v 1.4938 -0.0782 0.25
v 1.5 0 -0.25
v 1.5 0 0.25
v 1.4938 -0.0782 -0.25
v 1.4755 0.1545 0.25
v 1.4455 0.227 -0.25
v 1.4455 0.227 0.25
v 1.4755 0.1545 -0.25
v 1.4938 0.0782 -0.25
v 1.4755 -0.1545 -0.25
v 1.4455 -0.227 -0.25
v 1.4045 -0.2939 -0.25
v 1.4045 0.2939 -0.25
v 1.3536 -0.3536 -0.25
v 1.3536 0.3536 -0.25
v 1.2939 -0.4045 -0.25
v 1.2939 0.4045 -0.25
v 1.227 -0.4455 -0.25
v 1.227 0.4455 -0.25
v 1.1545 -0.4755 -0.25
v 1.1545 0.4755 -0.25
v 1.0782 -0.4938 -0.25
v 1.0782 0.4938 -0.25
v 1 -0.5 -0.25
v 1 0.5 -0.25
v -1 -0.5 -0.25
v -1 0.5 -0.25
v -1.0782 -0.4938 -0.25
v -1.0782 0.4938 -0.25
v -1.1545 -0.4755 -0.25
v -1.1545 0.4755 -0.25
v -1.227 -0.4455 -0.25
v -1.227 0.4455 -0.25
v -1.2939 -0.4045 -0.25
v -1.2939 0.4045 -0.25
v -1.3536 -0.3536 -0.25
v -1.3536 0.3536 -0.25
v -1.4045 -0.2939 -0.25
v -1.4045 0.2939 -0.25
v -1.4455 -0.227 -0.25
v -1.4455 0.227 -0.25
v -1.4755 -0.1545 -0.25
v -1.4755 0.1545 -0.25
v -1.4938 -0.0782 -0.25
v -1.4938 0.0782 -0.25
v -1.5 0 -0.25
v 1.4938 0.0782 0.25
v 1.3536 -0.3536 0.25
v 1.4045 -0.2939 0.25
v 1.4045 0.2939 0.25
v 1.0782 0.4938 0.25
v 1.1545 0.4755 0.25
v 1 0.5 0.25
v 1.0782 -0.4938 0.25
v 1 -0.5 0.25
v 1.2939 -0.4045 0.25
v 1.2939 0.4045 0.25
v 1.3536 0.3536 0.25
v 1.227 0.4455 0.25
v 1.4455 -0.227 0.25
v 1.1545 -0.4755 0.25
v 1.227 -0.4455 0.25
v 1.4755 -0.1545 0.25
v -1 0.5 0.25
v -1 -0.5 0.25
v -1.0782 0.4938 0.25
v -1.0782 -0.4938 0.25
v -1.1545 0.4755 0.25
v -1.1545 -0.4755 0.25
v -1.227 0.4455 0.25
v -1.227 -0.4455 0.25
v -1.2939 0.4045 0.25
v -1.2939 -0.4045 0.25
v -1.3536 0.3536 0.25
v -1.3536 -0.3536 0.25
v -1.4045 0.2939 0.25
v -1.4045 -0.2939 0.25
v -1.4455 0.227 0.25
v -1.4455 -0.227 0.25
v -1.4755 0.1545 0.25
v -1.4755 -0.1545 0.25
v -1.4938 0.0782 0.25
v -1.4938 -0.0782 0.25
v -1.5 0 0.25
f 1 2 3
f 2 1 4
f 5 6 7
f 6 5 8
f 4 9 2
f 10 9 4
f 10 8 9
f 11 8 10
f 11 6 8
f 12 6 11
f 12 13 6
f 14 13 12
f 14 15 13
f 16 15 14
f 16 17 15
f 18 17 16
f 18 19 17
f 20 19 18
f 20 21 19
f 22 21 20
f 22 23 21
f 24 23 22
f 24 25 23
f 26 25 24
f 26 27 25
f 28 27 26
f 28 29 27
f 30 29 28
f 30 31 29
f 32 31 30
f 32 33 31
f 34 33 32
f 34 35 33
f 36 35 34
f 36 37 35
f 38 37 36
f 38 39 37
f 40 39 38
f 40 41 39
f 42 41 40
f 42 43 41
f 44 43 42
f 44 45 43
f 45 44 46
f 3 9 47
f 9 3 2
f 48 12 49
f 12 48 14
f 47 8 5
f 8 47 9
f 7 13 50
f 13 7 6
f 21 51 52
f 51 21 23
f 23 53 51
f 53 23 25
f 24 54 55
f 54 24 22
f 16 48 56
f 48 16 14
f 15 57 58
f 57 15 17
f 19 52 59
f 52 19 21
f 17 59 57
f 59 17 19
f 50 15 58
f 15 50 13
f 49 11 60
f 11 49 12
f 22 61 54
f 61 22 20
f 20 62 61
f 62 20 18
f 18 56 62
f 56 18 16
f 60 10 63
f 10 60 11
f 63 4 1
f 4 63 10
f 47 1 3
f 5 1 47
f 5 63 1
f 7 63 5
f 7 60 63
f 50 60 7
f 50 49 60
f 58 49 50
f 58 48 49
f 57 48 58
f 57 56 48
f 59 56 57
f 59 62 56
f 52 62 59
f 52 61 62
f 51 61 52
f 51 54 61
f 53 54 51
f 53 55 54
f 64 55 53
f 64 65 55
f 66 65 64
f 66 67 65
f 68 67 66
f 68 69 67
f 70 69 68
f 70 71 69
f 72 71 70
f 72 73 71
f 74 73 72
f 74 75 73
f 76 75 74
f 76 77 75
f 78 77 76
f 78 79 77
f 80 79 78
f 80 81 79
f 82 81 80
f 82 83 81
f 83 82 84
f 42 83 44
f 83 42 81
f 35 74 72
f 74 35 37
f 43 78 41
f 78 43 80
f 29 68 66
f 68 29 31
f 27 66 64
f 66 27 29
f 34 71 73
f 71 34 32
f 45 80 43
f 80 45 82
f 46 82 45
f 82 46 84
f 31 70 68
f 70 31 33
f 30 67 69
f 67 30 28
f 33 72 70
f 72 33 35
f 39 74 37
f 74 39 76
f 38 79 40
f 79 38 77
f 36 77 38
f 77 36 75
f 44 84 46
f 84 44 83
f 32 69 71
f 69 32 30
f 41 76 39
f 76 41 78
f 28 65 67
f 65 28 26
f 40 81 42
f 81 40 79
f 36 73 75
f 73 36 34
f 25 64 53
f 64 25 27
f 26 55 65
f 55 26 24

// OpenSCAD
Key_Lenght = 10;
Key_Height = 10;
Key_Width = 15;

color("#a8b0b2")
union(){
    translate([1,0,0])
    cylinder(0.5,0.5,0.5, $fn=40, center=true);

    translate([-1,0,0])
    cylinder(0.5,0.5,0.5, $fn=40, center=true);

    cube([2,1,0.5],center = true);
}
